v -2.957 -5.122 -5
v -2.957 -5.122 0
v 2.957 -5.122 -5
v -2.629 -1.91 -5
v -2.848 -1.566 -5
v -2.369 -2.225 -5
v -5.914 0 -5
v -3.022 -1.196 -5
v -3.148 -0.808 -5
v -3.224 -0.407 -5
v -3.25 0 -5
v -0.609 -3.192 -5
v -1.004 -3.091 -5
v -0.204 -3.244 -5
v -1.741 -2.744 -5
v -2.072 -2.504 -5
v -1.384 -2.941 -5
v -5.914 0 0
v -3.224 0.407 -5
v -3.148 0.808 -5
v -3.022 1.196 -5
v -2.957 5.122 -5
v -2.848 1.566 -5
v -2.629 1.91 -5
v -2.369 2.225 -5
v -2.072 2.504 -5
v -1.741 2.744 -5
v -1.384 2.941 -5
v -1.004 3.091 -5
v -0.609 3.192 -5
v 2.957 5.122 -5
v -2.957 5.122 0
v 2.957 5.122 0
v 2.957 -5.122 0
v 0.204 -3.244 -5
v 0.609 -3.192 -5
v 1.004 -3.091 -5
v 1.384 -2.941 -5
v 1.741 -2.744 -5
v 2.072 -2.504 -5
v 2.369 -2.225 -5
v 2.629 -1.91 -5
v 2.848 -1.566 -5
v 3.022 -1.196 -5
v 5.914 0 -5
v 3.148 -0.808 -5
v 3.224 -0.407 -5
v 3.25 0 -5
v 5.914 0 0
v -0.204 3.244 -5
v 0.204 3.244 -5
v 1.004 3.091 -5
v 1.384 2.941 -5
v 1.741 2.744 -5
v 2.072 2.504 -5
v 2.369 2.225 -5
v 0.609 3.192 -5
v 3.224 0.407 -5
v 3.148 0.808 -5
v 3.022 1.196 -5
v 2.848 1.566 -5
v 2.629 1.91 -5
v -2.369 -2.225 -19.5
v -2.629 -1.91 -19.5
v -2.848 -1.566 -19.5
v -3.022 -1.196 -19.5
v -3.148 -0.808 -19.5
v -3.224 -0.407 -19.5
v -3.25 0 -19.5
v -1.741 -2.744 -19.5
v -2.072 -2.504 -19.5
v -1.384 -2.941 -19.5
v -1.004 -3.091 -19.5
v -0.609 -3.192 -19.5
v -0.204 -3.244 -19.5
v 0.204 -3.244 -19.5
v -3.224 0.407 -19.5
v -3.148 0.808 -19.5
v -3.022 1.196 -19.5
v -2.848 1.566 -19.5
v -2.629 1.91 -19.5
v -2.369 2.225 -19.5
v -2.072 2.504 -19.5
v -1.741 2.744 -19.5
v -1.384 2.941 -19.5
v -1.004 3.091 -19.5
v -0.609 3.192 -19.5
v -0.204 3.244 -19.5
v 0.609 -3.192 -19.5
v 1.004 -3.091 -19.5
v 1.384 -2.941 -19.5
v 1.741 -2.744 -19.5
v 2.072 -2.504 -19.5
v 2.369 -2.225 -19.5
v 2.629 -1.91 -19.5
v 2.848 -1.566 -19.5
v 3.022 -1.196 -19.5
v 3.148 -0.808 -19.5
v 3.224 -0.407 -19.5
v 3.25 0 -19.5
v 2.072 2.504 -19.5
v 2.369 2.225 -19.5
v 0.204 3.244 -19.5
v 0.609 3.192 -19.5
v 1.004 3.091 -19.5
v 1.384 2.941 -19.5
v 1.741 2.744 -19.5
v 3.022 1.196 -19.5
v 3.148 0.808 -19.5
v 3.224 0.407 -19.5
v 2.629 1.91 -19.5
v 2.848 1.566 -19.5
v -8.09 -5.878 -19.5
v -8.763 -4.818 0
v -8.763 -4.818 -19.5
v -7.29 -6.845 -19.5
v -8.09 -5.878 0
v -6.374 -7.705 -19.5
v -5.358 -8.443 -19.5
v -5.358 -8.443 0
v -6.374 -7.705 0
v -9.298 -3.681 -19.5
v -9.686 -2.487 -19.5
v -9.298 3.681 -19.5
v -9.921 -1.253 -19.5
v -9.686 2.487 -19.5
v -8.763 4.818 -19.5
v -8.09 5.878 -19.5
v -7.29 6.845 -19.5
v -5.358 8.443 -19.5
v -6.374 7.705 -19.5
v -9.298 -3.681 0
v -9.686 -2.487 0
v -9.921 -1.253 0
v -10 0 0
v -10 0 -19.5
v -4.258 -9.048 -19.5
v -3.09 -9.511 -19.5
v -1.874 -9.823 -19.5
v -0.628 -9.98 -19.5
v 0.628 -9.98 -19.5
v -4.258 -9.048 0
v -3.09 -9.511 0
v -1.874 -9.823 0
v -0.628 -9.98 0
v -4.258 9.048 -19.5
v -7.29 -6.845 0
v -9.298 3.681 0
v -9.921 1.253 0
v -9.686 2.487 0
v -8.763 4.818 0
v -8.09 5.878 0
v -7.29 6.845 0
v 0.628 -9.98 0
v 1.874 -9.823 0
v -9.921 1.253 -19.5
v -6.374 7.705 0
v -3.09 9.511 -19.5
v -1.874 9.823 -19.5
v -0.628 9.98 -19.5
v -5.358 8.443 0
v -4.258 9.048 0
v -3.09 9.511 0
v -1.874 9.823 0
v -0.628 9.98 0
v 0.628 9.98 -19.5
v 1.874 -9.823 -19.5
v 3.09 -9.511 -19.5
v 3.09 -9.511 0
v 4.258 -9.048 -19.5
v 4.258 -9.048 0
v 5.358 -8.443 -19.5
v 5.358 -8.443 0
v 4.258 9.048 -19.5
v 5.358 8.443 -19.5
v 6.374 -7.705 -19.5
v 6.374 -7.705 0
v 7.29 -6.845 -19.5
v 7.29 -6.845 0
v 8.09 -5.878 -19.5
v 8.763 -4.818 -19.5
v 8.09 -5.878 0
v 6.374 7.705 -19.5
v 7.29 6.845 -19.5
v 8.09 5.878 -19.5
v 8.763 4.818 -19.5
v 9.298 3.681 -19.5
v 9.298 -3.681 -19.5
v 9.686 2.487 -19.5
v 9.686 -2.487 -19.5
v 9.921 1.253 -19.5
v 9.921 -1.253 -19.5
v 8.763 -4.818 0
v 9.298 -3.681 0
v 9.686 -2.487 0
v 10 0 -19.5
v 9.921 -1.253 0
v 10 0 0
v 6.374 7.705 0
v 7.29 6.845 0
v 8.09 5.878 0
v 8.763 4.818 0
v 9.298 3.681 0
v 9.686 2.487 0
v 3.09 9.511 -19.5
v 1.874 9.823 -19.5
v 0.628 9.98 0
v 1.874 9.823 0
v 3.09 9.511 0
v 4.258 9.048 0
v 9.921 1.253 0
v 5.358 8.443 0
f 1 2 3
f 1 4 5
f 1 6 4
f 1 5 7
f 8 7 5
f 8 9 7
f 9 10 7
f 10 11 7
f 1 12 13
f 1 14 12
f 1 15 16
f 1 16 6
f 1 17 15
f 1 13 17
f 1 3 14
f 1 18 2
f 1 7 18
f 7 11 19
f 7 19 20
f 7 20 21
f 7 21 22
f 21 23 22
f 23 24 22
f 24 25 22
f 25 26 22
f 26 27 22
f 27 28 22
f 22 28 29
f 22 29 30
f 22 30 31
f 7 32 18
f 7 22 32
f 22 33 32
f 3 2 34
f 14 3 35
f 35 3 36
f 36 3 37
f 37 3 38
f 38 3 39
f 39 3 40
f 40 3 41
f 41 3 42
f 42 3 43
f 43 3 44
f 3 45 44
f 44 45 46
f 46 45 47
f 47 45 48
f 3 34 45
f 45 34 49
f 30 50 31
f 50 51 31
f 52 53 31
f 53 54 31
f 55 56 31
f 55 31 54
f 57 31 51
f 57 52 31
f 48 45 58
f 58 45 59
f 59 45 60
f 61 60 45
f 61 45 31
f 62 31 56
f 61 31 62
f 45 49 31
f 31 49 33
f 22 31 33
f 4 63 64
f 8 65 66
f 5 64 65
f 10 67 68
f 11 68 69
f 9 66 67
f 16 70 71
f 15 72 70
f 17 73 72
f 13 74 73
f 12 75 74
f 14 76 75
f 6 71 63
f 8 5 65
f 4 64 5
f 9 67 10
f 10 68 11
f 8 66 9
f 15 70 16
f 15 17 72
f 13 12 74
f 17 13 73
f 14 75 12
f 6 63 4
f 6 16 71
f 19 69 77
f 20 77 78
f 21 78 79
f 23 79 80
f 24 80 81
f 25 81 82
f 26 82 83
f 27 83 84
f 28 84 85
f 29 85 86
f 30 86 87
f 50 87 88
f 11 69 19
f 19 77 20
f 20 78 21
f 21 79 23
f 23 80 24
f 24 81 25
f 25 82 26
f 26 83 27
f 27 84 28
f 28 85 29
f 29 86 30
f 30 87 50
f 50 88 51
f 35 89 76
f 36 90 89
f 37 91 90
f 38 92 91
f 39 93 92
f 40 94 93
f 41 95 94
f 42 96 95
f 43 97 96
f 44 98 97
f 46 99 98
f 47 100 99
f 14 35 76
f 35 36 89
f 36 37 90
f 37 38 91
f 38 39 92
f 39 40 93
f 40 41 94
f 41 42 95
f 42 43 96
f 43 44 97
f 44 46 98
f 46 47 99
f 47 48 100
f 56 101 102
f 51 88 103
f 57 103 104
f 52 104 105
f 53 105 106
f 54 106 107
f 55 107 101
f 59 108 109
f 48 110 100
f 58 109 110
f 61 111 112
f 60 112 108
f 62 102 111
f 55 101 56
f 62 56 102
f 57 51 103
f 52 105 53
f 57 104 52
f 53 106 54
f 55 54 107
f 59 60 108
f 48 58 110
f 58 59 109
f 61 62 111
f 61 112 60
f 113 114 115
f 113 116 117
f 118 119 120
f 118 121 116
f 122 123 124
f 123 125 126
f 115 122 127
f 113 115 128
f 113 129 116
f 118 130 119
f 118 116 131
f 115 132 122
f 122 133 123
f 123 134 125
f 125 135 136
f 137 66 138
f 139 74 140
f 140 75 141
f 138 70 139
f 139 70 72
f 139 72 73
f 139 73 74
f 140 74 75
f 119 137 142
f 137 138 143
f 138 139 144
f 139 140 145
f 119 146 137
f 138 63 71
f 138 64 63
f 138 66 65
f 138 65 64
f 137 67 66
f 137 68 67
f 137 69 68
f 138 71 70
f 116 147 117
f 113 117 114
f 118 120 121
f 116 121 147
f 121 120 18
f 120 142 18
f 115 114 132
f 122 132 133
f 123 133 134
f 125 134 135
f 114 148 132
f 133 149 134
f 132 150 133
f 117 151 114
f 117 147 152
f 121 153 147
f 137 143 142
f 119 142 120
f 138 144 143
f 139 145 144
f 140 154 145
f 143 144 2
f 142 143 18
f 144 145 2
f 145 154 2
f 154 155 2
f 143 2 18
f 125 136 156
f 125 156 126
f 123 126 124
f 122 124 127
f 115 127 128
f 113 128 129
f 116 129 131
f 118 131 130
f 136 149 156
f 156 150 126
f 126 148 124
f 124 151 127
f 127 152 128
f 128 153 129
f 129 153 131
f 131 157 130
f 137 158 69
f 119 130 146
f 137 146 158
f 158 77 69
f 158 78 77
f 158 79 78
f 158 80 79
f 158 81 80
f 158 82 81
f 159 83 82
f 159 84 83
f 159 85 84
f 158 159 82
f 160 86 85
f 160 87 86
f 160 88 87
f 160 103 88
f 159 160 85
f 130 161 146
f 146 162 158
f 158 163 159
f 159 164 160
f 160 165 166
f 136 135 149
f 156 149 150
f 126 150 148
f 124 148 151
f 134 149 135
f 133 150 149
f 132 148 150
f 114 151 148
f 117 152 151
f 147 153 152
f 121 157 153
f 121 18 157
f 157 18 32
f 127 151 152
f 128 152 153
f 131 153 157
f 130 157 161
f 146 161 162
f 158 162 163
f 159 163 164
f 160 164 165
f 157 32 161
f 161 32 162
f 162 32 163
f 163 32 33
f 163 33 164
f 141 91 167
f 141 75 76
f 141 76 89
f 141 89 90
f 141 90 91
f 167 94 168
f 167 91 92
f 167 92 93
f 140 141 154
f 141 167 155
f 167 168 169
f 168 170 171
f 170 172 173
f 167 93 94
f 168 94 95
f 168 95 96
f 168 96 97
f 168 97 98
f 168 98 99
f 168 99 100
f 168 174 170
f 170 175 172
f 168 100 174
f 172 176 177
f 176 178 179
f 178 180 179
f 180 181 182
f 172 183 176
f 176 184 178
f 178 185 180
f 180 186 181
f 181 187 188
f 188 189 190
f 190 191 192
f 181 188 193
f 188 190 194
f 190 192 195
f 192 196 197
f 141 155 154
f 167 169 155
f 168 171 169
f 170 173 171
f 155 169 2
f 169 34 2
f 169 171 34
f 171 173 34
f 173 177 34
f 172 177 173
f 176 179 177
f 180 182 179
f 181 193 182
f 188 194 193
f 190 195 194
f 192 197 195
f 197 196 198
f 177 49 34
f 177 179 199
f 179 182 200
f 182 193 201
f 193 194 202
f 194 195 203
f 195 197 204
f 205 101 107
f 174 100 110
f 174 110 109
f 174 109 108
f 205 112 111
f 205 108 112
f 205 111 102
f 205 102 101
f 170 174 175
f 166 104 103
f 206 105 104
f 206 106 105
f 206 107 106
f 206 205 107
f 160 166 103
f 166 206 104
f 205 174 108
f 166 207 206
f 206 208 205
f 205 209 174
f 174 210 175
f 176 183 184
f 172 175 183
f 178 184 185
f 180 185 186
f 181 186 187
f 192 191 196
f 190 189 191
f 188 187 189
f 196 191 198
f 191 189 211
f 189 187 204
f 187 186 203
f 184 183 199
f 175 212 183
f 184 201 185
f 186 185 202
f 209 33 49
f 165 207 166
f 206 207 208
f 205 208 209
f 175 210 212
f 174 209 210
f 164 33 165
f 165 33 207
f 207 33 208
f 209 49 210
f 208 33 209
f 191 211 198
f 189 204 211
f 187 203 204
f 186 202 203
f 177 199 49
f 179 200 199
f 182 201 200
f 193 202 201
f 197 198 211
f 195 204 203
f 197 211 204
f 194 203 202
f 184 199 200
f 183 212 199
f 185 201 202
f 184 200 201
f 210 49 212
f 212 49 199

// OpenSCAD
$fn = 50;

difference() {
	union() {
		translate(v = [0, 0, -19.5]) {
			cylinder(h = 19.5, r = 10.0);
		}
	}
	union() {
		translate(v = [0, 0, 0]) {
			rotate(a = [0, 0, 0]) {
				difference() {
					union() {
						translate(v = [0, 0, -5]) {
							linear_extrude(height = 5) {
								polygon(points = [[5.914249999999999, 0.0], [2.957125, 5.1218907443321156], [-2.9571249999999982, 5.1218907443321156], [-5.914249999999999, 7.242867331857232e-16], [-2.9571250000000022, -5.121890744332115], [2.9571249999999956, -5.121890744332118]]);
							}
						}
					}
					union();
				}
			}
		}
		#translate(v = [0, 0, -100.0]) {
			cylinder(h = 200, r = 3.25);
		}
	}
}
